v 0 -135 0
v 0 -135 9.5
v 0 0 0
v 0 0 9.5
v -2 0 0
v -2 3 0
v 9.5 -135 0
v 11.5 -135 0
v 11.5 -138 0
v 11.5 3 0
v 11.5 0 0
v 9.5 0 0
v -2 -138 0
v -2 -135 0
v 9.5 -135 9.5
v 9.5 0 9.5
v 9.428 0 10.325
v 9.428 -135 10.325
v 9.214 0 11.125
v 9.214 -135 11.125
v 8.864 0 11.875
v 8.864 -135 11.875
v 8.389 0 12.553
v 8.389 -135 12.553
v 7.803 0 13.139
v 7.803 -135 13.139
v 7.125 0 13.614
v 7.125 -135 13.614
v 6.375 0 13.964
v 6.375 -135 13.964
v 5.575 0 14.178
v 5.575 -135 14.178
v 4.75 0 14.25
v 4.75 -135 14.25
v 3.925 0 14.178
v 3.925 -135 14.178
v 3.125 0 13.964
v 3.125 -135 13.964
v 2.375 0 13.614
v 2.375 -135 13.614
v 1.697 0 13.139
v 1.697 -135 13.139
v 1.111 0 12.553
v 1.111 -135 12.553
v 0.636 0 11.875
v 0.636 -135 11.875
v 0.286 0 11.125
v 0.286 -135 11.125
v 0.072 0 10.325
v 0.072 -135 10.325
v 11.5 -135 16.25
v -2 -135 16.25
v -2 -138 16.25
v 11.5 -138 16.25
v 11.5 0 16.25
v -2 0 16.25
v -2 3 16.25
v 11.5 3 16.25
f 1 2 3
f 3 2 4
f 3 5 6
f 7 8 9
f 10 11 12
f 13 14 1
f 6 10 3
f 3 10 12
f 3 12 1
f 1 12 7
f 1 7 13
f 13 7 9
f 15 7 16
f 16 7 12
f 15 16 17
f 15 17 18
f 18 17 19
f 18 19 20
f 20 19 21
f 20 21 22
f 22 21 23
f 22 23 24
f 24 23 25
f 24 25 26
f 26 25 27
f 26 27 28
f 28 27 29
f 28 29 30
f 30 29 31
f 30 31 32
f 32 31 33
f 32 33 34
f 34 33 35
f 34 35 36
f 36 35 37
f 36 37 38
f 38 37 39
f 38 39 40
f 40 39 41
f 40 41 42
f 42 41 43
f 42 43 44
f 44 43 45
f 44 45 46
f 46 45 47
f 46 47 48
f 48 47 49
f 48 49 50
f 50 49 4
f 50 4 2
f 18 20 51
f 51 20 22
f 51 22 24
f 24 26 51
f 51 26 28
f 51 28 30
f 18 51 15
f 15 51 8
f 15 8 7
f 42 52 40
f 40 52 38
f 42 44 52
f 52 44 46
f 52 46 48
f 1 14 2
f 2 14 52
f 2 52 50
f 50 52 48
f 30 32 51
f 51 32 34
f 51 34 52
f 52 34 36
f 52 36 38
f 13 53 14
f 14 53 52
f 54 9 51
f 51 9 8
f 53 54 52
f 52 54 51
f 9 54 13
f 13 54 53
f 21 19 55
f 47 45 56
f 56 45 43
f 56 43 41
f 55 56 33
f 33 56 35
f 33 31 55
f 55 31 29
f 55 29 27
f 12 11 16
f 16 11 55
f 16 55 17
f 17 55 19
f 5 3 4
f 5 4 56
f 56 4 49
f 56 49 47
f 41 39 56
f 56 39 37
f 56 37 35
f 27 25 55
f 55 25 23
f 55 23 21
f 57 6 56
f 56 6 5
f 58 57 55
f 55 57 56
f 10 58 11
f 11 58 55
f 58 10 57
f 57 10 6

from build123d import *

# Parameters (mm, degrees)
BOSS_EXTRUDE1_DEPTH = 135
SKETCH8_W           = 13.5
SKETCH8_H           = 16.25
BOSS_EXTRUDE4_DEPTH = 3
SKETCH9_W           = 13.5
SKETCH9_H           = 16.25
BOSS_EXTRUDE5_DEPTH = 3


with BuildPart() as part:
    # Sketch5 → Boss-Extrude1 (new body)
    with BuildSketch(Plane(origin=(0, 0, 0), x_dir=(1, 0, 0), z_dir=(0, 1, 0))):
        with BuildLine():
            Line((0, 0), (9.5, 0))
            Line((9.5, 0), (9.5, -9.5))
            ThreePointArc((9.5, -9.5), (4.75, -14.25), (0, -9.5))
            Line((0, -9.5), (0, 0))
        make_face()
    extrude(amount=-BOSS_EXTRUDE1_DEPTH)

    # Sketch8 → Boss-Extrude4 (add)
    with BuildSketch(Plane.XZ.offset(135)):
        with Locations((4.75, 8.125)):
            Rectangle(SKETCH8_W, SKETCH8_H)
    extrude(amount=BOSS_EXTRUDE4_DEPTH)

    # Sketch9 → Boss-Extrude5 (add)
    with BuildSketch(Plane(origin=(0, 0, 0), x_dir=(1, 0, 0), z_dir=(0, 1, 0))):
        with Locations((4.75, -8.125)):
            Rectangle(SKETCH9_W, SKETCH9_H)
    extrude(amount=BOSS_EXTRUDE5_DEPTH)


solid = part.part
